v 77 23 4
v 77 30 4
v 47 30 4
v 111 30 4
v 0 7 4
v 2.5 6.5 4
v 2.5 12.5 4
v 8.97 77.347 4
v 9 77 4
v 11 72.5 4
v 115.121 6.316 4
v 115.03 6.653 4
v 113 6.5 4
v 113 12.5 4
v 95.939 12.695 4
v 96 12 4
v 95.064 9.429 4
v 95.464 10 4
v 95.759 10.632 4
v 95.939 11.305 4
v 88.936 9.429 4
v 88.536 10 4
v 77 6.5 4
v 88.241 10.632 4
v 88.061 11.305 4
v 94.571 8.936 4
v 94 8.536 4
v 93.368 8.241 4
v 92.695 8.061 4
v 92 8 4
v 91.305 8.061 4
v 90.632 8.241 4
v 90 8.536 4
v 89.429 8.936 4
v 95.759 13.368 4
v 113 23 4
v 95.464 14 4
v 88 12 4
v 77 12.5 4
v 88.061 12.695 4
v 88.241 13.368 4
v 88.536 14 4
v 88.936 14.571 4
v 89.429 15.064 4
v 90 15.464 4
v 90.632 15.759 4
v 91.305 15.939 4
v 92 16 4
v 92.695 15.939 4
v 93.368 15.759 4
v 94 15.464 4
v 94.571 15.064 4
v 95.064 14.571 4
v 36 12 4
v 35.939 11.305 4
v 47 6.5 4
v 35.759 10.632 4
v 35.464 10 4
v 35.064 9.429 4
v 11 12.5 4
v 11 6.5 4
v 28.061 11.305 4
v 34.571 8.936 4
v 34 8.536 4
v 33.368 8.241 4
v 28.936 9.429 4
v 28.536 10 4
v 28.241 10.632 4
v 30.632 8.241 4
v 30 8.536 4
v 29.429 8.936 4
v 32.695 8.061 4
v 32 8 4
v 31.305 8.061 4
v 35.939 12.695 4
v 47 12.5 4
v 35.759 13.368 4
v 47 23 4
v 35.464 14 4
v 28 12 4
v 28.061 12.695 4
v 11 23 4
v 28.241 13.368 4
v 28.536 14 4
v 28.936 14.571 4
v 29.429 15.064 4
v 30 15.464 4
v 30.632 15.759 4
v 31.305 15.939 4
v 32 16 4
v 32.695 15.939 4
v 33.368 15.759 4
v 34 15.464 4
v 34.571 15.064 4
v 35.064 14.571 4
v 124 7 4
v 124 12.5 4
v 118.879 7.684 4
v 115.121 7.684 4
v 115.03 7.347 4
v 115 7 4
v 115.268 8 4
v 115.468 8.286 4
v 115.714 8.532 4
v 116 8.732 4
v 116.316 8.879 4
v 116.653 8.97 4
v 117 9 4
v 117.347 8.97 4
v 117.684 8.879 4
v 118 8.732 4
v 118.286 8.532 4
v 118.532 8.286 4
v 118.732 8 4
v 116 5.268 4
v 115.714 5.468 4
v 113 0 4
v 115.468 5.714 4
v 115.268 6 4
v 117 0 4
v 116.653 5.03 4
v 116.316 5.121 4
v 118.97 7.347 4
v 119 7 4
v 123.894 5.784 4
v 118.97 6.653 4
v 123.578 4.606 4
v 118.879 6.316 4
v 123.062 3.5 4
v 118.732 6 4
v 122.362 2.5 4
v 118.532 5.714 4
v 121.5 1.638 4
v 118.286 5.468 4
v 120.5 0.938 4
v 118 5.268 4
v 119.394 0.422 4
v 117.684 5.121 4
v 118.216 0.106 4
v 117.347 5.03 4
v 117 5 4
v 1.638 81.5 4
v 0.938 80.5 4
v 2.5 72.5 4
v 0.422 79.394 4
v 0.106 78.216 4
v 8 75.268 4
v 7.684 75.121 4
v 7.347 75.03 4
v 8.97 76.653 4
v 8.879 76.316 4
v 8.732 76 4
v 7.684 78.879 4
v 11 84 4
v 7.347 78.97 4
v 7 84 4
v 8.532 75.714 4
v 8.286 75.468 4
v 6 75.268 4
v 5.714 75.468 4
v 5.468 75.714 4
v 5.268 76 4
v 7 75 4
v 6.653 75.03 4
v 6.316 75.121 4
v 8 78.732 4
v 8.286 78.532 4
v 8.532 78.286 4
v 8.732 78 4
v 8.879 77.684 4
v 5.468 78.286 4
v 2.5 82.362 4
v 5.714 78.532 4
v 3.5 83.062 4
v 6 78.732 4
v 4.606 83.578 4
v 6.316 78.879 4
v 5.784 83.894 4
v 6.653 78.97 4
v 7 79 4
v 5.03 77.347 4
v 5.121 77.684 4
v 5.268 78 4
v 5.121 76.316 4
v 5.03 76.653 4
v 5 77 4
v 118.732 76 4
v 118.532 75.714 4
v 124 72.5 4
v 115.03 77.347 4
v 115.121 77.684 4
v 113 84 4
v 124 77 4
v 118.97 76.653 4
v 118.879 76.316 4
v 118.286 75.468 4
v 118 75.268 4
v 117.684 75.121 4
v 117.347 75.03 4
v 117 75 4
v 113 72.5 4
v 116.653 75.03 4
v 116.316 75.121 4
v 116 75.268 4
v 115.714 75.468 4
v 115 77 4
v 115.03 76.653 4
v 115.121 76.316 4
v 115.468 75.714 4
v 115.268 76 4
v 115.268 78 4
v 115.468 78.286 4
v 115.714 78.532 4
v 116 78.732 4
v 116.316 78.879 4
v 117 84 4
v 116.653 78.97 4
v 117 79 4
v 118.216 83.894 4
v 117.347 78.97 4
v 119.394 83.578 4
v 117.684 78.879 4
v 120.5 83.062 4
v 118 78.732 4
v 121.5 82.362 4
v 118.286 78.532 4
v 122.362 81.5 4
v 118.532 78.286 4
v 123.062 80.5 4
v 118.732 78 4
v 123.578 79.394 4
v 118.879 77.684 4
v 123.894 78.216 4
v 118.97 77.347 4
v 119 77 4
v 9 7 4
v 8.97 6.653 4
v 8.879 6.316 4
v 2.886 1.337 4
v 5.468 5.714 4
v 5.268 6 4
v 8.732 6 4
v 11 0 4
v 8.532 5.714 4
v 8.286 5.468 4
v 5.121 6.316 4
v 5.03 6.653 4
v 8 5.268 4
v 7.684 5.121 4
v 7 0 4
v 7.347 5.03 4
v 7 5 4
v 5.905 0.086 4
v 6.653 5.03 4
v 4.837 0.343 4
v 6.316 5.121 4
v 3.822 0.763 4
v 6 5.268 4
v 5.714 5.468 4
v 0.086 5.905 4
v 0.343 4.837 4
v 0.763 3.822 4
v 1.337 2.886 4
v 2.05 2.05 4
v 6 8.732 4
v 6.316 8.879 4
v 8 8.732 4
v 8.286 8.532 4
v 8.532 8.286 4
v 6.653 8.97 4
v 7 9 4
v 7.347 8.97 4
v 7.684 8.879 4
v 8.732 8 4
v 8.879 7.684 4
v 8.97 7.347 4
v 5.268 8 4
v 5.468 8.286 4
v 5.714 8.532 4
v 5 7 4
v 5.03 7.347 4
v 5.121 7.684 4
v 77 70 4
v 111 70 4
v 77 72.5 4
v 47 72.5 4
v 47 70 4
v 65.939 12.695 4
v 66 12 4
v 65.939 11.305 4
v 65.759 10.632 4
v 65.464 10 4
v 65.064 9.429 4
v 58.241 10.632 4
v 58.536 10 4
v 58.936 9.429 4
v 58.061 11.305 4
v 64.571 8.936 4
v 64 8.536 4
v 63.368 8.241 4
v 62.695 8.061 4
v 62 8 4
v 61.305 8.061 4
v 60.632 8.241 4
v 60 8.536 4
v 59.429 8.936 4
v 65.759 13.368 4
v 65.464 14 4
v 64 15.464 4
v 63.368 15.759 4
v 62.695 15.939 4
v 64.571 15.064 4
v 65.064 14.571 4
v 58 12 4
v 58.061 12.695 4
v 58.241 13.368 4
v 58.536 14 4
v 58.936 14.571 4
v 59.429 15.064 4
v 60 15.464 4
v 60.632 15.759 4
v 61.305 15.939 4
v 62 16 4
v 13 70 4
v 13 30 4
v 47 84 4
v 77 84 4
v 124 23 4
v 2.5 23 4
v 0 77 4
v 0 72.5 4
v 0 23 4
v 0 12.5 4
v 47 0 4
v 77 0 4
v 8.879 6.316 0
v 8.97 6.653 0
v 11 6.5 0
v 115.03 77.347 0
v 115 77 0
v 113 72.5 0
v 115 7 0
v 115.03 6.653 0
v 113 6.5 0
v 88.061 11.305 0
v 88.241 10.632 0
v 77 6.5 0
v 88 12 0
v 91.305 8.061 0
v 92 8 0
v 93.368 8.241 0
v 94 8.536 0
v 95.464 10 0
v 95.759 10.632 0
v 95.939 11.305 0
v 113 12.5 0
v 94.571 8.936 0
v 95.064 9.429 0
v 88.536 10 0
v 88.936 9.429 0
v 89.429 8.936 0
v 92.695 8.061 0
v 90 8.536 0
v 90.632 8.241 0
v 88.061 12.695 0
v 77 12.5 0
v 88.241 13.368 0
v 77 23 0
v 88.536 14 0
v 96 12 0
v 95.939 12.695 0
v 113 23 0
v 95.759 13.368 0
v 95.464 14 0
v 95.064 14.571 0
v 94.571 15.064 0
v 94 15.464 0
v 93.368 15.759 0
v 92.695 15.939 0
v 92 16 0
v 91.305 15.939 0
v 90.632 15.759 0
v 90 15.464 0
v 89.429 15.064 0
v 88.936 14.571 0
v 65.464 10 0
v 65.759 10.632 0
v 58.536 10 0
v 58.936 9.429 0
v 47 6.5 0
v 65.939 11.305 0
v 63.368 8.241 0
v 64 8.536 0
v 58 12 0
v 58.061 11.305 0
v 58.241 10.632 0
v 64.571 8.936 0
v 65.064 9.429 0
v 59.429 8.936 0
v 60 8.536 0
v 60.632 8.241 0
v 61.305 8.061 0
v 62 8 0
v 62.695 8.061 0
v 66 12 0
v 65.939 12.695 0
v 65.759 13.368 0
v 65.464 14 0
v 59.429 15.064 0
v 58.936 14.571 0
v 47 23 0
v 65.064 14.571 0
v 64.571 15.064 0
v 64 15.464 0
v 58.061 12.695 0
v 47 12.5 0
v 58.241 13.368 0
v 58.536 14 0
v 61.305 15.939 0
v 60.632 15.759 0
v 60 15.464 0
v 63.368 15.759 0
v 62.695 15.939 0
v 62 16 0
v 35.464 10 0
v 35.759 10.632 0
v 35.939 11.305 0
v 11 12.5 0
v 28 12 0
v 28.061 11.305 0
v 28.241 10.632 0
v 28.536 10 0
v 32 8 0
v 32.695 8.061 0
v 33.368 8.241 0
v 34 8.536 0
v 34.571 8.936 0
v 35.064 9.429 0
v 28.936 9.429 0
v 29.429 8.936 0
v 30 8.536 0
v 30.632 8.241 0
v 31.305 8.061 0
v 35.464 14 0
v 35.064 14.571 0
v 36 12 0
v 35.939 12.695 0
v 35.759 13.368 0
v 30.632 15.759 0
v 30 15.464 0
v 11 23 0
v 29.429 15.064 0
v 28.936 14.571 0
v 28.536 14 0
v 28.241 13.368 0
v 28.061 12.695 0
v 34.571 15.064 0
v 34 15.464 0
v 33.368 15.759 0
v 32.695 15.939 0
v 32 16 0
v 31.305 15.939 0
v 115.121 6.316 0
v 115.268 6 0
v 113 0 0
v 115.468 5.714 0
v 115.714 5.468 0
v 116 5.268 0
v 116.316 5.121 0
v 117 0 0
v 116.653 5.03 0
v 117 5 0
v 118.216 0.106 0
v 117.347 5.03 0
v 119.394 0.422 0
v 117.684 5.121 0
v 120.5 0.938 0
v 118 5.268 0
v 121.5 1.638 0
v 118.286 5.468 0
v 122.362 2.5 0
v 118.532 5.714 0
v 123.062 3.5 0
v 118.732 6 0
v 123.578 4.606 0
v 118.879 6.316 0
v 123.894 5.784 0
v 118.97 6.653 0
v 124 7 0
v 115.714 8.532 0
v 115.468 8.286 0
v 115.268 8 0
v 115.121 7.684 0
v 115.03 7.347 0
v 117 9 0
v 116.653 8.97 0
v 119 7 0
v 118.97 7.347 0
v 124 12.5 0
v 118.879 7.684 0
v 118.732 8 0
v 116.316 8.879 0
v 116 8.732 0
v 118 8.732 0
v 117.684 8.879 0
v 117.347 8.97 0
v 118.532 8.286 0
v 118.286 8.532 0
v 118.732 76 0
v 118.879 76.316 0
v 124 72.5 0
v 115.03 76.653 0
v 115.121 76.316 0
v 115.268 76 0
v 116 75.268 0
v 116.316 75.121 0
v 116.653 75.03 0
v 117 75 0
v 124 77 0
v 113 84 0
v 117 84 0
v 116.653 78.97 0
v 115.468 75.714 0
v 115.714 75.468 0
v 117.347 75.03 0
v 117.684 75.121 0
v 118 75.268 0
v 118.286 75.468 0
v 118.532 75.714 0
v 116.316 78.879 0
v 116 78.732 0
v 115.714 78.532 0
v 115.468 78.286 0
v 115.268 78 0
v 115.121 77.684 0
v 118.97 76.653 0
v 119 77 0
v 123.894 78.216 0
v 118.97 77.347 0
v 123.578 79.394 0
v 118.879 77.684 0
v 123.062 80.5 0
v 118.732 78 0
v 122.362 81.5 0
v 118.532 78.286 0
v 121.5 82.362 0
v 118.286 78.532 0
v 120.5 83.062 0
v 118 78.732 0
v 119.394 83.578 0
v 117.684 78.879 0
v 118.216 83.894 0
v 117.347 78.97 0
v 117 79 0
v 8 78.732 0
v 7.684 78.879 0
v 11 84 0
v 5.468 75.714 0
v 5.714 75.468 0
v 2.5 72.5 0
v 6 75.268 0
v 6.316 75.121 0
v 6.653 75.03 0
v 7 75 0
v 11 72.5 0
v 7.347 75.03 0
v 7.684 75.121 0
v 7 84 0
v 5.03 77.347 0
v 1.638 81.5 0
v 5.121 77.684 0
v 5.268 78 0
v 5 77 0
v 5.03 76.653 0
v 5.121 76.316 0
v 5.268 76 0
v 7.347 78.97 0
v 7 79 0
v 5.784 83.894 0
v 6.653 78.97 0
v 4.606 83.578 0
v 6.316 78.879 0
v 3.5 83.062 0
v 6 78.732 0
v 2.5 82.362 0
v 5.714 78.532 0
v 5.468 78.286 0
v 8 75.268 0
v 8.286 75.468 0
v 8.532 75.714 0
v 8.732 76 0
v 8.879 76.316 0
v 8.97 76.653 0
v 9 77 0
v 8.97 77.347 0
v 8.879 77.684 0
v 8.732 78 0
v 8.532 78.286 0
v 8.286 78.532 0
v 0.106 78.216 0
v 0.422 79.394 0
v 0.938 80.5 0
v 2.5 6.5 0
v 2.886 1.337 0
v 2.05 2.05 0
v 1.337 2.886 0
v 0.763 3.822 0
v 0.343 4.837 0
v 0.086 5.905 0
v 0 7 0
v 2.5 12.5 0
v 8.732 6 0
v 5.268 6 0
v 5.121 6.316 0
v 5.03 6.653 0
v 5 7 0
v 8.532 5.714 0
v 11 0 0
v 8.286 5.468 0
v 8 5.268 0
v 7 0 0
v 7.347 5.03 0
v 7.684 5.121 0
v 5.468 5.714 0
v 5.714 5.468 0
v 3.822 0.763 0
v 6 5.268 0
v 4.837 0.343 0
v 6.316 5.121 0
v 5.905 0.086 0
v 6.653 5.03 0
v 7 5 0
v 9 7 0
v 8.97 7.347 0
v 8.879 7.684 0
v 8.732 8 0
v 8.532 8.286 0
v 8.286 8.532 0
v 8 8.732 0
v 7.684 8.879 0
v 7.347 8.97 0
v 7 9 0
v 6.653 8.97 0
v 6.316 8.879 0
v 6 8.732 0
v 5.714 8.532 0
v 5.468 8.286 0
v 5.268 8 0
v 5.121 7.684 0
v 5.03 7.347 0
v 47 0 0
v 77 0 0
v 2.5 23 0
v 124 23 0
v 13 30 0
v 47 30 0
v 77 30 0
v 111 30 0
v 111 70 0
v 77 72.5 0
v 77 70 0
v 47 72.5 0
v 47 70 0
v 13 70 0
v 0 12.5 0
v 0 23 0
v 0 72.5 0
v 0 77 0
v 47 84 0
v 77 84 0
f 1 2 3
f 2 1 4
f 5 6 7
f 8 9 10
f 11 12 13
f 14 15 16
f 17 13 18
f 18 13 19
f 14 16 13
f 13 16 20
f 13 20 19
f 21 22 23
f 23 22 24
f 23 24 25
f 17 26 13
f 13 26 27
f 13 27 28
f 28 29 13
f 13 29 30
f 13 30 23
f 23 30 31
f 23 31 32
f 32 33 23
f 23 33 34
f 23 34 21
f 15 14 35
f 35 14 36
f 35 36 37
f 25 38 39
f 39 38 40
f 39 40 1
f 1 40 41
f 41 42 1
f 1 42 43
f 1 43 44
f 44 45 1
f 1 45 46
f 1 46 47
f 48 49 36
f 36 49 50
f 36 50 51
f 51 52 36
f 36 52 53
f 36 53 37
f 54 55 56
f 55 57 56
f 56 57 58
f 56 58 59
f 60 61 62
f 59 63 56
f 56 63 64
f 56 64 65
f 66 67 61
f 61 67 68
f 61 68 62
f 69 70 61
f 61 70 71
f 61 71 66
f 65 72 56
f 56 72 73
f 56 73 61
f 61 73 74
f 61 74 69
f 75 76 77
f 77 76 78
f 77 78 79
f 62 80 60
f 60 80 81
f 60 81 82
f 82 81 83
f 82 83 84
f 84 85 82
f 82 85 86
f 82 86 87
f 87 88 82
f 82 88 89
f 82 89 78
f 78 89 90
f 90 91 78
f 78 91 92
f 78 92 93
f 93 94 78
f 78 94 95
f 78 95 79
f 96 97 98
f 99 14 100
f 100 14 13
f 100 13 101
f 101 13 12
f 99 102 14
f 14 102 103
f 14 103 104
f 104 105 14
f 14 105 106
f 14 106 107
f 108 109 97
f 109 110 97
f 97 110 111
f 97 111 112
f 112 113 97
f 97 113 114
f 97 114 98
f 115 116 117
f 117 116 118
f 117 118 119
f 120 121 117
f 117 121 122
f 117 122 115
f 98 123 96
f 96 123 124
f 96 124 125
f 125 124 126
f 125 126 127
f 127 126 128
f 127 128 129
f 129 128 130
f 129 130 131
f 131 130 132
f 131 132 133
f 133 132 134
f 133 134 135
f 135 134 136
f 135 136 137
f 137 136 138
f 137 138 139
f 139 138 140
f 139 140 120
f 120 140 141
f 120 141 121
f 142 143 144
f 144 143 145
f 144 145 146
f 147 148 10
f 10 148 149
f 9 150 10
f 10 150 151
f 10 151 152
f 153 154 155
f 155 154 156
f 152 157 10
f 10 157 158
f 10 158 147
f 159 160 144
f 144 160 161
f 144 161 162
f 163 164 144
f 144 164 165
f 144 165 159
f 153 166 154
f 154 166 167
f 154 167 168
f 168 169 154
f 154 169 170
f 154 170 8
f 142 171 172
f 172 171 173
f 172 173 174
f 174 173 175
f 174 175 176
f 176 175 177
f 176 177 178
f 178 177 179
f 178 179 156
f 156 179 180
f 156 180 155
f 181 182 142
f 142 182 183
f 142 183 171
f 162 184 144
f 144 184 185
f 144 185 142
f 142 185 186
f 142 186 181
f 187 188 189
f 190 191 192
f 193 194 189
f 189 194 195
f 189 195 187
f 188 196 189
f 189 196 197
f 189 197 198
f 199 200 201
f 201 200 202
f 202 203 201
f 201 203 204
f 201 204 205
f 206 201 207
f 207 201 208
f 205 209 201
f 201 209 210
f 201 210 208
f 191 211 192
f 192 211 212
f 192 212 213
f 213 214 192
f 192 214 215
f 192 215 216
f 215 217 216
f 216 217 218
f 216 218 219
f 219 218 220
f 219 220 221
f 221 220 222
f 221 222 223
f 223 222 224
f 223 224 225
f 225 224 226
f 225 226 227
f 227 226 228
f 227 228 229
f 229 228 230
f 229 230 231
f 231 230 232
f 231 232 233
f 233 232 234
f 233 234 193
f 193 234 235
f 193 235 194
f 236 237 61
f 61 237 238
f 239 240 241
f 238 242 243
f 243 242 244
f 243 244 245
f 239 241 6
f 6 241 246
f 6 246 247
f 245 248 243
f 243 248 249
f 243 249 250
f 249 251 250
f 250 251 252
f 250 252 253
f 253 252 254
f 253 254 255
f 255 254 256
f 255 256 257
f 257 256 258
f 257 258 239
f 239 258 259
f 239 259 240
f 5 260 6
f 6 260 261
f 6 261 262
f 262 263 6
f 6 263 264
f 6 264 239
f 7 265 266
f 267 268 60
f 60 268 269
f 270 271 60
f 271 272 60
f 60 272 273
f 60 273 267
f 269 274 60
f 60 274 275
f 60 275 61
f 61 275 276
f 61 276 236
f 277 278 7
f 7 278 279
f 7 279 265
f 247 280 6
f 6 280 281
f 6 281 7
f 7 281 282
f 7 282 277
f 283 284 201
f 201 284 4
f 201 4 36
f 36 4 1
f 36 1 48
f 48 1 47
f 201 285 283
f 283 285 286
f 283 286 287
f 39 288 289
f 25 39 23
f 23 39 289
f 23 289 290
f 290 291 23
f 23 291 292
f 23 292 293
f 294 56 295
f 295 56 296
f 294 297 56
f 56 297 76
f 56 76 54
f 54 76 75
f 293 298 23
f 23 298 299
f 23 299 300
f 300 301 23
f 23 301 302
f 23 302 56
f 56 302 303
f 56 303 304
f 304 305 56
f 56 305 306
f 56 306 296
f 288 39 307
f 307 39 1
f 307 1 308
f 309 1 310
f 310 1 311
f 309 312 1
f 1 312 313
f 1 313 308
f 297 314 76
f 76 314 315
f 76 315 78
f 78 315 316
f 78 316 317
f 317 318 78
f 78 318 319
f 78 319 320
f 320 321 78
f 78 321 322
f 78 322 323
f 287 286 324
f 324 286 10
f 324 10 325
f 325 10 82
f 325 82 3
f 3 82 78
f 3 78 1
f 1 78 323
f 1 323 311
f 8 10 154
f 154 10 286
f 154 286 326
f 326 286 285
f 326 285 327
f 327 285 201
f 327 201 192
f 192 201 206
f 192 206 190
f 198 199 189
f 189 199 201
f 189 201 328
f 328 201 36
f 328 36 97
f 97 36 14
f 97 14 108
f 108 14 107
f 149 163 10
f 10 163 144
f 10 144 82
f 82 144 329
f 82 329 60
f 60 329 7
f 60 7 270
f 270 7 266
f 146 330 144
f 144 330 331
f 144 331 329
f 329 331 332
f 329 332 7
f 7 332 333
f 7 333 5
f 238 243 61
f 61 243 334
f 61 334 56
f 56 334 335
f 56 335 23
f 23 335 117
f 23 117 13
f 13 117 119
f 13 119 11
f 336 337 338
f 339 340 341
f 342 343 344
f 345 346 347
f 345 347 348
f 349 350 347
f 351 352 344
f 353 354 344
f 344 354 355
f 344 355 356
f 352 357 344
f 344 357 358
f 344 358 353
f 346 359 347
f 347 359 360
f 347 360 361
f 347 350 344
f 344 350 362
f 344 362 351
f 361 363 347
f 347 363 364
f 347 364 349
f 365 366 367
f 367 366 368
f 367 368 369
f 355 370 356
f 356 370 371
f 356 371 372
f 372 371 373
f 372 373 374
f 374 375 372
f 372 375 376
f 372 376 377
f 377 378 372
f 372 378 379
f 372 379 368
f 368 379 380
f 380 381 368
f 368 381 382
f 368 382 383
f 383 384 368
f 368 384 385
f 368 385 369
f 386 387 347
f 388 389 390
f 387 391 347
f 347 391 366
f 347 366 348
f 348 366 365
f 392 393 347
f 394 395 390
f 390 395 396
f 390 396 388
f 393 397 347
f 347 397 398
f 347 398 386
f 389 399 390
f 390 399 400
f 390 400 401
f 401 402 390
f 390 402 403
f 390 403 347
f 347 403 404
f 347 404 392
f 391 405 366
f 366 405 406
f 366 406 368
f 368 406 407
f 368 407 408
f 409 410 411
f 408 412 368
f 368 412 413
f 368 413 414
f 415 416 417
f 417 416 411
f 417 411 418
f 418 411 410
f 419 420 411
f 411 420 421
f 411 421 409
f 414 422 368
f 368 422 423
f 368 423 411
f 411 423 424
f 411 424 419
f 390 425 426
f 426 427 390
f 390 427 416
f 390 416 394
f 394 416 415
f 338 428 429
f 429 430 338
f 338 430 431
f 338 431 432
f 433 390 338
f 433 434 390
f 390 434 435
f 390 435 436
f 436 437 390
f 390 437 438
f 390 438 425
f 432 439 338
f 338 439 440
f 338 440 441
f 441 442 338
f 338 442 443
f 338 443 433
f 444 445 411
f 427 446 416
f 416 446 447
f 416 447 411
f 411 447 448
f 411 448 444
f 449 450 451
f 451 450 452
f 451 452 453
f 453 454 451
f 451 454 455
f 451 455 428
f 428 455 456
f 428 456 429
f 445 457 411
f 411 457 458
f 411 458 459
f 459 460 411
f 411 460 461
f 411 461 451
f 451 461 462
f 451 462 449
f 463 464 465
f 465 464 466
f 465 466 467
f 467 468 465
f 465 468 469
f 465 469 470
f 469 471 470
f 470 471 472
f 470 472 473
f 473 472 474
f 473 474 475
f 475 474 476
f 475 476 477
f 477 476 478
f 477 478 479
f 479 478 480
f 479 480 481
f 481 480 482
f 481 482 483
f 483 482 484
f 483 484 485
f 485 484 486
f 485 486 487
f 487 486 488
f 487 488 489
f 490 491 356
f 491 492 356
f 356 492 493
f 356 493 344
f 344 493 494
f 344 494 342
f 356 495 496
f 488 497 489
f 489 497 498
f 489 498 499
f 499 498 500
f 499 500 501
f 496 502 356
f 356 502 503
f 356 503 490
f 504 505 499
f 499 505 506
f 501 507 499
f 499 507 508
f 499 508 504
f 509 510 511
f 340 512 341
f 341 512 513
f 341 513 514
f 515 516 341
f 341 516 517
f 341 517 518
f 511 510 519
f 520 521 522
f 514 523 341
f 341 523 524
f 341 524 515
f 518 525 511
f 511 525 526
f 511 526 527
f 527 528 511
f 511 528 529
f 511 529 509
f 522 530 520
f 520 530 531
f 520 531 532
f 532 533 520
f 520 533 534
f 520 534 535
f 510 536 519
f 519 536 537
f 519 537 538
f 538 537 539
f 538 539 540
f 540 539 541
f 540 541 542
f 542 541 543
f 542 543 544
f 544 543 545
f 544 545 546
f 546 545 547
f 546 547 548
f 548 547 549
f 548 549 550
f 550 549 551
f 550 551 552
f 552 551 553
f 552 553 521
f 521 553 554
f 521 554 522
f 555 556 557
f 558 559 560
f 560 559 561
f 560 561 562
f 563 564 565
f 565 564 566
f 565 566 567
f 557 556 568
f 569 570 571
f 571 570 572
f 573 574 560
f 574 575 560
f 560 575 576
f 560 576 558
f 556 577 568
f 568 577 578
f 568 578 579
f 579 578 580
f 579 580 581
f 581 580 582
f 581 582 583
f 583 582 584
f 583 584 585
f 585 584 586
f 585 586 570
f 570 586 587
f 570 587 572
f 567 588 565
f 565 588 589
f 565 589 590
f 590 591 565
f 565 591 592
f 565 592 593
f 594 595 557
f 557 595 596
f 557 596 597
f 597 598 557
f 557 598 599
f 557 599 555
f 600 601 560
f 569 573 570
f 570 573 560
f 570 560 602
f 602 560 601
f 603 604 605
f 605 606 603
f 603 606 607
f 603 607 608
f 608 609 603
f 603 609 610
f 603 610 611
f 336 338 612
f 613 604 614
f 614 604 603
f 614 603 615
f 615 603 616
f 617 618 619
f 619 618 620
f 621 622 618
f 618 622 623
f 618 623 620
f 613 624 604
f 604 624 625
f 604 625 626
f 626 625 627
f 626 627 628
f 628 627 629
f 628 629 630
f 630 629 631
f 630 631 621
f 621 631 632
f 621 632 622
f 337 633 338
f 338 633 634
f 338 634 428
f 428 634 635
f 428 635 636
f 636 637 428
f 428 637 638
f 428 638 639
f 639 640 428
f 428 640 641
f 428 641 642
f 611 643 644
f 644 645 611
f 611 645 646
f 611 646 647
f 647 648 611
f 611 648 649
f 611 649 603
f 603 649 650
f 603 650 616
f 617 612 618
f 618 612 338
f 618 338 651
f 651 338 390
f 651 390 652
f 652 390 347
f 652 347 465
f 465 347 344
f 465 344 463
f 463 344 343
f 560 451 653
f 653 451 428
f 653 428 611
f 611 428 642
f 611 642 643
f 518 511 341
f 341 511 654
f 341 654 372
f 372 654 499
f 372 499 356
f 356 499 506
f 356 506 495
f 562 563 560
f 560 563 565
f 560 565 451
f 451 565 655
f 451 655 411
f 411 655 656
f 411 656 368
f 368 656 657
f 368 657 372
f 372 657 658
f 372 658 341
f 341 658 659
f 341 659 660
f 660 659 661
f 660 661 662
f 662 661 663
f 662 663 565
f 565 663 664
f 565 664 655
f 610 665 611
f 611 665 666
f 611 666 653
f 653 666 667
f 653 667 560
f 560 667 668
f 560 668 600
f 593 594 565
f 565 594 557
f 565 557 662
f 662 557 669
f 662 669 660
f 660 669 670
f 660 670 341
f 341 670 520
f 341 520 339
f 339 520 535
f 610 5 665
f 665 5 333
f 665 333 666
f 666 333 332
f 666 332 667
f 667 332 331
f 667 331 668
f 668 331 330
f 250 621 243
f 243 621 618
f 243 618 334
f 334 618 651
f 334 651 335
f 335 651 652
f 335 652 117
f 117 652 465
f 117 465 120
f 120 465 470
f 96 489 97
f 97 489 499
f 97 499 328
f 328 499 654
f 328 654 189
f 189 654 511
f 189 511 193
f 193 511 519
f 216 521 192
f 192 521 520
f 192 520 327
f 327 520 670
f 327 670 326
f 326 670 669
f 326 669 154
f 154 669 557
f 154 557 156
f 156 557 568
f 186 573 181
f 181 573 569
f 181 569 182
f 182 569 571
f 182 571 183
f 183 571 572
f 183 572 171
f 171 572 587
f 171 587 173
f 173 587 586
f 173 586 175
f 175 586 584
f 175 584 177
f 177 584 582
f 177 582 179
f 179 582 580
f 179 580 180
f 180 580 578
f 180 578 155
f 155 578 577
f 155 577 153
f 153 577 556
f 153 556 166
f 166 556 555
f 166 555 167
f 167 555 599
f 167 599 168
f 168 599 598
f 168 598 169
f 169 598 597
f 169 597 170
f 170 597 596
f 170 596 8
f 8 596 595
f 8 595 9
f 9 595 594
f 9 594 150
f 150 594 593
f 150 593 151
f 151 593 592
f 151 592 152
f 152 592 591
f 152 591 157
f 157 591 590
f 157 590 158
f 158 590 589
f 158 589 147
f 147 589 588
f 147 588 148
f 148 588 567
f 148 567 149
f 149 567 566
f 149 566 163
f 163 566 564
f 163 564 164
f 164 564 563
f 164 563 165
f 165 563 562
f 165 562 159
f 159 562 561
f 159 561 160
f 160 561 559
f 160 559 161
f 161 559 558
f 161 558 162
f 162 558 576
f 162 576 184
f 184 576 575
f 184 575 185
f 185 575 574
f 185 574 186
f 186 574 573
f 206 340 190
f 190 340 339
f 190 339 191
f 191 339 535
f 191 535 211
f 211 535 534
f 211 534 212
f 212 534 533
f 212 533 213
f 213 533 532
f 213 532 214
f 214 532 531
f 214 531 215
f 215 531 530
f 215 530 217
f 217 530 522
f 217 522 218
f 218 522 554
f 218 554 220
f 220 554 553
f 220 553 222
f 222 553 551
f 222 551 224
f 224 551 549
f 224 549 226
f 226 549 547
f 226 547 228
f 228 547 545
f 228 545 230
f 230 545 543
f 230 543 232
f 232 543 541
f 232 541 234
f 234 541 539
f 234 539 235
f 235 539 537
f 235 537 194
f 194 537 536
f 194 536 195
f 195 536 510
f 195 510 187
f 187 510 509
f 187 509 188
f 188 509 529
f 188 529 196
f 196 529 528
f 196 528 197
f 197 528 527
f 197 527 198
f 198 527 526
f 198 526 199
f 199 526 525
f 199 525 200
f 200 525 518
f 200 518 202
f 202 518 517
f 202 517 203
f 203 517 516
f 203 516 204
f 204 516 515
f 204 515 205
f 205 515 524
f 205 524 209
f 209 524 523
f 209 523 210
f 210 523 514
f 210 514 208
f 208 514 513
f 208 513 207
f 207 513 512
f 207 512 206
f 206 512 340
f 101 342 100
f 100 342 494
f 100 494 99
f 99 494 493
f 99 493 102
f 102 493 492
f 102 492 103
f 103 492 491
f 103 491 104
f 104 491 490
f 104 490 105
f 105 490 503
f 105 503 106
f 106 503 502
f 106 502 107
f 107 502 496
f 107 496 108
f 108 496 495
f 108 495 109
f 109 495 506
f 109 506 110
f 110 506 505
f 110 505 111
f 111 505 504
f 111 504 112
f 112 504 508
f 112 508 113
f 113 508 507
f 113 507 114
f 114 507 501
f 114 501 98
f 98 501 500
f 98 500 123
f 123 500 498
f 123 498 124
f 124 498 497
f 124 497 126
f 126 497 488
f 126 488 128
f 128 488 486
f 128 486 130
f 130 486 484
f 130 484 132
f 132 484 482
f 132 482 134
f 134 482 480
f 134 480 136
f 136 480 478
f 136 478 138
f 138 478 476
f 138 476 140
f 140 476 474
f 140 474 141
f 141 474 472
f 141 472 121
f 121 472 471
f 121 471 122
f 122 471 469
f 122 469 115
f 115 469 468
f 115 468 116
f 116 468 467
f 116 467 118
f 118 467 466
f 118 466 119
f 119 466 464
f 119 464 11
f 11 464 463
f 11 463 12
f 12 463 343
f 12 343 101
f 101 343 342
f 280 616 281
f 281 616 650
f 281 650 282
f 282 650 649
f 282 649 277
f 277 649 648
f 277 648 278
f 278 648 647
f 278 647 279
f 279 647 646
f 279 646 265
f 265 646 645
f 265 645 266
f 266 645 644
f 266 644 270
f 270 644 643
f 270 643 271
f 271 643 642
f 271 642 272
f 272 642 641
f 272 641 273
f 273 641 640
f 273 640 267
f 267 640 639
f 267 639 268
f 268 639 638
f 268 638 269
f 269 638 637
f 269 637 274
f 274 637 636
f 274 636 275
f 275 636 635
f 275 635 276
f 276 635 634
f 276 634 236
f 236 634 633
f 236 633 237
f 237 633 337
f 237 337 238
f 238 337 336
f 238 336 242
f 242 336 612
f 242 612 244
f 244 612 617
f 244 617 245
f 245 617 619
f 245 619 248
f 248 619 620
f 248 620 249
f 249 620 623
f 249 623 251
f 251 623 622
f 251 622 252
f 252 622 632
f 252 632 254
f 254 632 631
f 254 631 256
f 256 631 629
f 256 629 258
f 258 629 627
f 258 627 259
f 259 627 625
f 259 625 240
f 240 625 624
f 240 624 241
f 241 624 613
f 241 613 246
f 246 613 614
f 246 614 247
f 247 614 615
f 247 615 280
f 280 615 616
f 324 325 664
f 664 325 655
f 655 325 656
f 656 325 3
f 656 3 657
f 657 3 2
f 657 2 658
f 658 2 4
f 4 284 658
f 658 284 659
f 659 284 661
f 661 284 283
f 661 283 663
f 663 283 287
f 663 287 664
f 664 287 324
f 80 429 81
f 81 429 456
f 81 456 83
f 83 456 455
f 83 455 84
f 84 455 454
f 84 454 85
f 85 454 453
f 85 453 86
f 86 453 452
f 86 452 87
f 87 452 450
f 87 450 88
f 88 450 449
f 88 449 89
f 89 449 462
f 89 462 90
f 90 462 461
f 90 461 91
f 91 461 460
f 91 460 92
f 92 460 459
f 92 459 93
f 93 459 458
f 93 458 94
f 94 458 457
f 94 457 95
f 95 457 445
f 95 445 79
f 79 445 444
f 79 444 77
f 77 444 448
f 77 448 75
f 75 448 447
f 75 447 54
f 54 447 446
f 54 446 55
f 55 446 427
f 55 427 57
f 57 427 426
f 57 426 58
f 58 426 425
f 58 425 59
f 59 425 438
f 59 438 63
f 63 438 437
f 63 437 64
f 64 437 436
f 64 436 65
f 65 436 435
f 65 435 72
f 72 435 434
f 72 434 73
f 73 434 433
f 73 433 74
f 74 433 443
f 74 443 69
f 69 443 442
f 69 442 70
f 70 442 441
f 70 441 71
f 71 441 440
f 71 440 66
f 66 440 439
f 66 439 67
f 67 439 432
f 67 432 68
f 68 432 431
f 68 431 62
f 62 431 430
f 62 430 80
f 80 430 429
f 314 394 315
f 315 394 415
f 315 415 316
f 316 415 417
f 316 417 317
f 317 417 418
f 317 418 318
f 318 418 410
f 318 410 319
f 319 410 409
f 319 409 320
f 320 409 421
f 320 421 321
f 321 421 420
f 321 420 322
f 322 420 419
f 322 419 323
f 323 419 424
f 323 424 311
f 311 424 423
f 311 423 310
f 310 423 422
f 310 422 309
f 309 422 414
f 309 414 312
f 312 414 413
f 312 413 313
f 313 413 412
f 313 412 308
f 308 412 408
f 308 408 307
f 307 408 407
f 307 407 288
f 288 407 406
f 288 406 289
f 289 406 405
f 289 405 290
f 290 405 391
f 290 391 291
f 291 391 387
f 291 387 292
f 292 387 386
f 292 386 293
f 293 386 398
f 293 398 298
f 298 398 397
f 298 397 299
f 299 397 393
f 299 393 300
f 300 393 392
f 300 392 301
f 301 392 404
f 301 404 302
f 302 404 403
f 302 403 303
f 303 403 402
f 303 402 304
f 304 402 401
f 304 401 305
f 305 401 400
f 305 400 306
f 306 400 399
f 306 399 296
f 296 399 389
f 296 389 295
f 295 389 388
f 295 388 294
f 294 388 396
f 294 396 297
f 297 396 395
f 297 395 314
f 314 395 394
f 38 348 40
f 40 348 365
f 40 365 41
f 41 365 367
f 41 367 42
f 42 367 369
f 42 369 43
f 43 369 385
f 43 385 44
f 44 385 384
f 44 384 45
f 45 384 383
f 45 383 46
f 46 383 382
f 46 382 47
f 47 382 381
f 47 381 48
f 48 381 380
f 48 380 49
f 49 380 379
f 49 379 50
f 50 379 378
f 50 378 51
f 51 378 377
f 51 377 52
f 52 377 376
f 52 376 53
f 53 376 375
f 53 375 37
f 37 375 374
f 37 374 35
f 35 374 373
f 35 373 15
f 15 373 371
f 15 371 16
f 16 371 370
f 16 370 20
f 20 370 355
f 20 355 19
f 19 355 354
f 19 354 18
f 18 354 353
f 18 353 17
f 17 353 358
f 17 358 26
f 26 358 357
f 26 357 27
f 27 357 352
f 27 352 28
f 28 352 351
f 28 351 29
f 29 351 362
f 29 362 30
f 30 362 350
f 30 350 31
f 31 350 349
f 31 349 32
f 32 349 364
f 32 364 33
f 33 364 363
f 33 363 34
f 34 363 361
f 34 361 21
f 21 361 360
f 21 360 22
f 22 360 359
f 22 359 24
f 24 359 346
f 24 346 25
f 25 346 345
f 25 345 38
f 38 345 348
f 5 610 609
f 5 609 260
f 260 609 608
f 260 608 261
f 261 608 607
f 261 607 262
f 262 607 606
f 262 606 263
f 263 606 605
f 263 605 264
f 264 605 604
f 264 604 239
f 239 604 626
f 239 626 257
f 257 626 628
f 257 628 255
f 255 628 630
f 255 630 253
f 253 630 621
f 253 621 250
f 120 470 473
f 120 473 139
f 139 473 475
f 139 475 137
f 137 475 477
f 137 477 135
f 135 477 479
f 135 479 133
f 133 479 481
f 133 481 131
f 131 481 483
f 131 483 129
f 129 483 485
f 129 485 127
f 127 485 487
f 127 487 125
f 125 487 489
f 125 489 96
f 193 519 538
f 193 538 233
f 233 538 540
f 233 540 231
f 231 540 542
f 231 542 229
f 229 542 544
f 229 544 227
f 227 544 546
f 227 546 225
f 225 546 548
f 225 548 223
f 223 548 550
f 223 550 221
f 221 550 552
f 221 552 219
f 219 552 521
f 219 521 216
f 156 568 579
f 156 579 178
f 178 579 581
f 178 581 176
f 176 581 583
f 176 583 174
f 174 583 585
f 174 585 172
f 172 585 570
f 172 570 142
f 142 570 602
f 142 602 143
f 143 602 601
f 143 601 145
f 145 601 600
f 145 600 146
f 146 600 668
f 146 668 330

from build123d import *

# Parameters (mm, degrees)
CROQUIS1_W              = 124
CROQUIS1_H              = 84
CROQUIS1_R              = 2
CROQUIS1_R_2            = 4
CROQUIS1_W_2            = 98
CROQUIS1_H_2            = 40
SALIENTE_EXTRUIR1_DEPTH = 4
REDONDEO1_R             = 7


with BuildPart() as part:
    # Croquis1 → Saliente-Extruir1 (new body)
    with BuildSketch(Plane.XY):
        with Locations((62, 42)):
            Rectangle(CROQUIS1_W, CROQUIS1_H)
        with Locations((7, 77)):
            Circle(CROQUIS1_R, mode=Mode.SUBTRACT)
        with Locations((117, 77)):
            Circle(CROQUIS1_R, mode=Mode.SUBTRACT)
        with Locations((117, 7)):
            Circle(CROQUIS1_R, mode=Mode.SUBTRACT)
        with Locations((7, 7)):
            Circle(CROQUIS1_R, mode=Mode.SUBTRACT)
        with Locations((32, 12)):
            Circle(CROQUIS1_R_2, mode=Mode.SUBTRACT)
        with Locations((62, 12)):
            Circle(CROQUIS1_R_2, mode=Mode.SUBTRACT)
        with Locations((92, 12)):
            Circle(CROQUIS1_R_2, mode=Mode.SUBTRACT)
        with Locations((62, 50)):
            Rectangle(CROQUIS1_W_2, CROQUIS1_H_2, mode=Mode.SUBTRACT)
    extrude(amount=SALIENTE_EXTRUIR1_DEPTH)

    # Redondeo1
    redondeo1_edges = [part.edges().sort_by_distance(p)[0] for p in [
        (0, 84, 2),
        (124, 84, 2),
        (124, 0, 2),
        (0, 0, 2),
    ]]
    fillet(redondeo1_edges, radius=REDONDEO1_R)


solid = part.part
